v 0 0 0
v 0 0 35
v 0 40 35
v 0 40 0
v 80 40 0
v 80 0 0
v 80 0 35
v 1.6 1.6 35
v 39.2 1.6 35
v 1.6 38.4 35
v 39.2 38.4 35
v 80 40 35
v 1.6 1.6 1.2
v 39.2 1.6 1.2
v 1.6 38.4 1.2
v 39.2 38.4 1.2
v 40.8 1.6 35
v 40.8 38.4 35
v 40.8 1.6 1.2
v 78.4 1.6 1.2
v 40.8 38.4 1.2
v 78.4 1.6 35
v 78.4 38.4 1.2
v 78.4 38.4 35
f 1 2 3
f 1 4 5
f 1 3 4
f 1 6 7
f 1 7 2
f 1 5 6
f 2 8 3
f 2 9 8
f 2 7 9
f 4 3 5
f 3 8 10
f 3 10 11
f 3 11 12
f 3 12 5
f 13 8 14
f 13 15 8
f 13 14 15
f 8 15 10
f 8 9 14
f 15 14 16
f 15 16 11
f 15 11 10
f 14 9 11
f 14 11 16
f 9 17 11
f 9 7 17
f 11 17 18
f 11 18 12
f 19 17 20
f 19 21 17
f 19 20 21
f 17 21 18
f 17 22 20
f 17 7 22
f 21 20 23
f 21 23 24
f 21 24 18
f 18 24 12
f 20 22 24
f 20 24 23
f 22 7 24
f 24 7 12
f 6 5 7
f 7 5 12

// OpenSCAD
// Electronics Storage — 2x1 Medium Bin
// 80 x 40 x 35 mm open-top bin with a mid-wall divider, giving you
// two 40 x 40 mm compartments. Sized for jumper wires, alligator
// clips, heat-shrink tubing, spare cables, solder pump, etc.

$fn = 48;

W      = 80;
D      = 40;
H      = 35;
WALL   = 1.6;
FLOOR  = 1.2;
DIV_H  = H - 4;     // divider is slightly shorter than outer wall

difference() {
    cube([W, D, H]);
    // Left compartment
    translate([WALL, WALL, FLOOR])
        cube([(W - 3*WALL)/2, D - 2*WALL, H]);
    // Right compartment
    translate([(W + WALL)/2, WALL, FLOOR])
        cube([(W - 3*WALL)/2, D - 2*WALL, H]);
}
